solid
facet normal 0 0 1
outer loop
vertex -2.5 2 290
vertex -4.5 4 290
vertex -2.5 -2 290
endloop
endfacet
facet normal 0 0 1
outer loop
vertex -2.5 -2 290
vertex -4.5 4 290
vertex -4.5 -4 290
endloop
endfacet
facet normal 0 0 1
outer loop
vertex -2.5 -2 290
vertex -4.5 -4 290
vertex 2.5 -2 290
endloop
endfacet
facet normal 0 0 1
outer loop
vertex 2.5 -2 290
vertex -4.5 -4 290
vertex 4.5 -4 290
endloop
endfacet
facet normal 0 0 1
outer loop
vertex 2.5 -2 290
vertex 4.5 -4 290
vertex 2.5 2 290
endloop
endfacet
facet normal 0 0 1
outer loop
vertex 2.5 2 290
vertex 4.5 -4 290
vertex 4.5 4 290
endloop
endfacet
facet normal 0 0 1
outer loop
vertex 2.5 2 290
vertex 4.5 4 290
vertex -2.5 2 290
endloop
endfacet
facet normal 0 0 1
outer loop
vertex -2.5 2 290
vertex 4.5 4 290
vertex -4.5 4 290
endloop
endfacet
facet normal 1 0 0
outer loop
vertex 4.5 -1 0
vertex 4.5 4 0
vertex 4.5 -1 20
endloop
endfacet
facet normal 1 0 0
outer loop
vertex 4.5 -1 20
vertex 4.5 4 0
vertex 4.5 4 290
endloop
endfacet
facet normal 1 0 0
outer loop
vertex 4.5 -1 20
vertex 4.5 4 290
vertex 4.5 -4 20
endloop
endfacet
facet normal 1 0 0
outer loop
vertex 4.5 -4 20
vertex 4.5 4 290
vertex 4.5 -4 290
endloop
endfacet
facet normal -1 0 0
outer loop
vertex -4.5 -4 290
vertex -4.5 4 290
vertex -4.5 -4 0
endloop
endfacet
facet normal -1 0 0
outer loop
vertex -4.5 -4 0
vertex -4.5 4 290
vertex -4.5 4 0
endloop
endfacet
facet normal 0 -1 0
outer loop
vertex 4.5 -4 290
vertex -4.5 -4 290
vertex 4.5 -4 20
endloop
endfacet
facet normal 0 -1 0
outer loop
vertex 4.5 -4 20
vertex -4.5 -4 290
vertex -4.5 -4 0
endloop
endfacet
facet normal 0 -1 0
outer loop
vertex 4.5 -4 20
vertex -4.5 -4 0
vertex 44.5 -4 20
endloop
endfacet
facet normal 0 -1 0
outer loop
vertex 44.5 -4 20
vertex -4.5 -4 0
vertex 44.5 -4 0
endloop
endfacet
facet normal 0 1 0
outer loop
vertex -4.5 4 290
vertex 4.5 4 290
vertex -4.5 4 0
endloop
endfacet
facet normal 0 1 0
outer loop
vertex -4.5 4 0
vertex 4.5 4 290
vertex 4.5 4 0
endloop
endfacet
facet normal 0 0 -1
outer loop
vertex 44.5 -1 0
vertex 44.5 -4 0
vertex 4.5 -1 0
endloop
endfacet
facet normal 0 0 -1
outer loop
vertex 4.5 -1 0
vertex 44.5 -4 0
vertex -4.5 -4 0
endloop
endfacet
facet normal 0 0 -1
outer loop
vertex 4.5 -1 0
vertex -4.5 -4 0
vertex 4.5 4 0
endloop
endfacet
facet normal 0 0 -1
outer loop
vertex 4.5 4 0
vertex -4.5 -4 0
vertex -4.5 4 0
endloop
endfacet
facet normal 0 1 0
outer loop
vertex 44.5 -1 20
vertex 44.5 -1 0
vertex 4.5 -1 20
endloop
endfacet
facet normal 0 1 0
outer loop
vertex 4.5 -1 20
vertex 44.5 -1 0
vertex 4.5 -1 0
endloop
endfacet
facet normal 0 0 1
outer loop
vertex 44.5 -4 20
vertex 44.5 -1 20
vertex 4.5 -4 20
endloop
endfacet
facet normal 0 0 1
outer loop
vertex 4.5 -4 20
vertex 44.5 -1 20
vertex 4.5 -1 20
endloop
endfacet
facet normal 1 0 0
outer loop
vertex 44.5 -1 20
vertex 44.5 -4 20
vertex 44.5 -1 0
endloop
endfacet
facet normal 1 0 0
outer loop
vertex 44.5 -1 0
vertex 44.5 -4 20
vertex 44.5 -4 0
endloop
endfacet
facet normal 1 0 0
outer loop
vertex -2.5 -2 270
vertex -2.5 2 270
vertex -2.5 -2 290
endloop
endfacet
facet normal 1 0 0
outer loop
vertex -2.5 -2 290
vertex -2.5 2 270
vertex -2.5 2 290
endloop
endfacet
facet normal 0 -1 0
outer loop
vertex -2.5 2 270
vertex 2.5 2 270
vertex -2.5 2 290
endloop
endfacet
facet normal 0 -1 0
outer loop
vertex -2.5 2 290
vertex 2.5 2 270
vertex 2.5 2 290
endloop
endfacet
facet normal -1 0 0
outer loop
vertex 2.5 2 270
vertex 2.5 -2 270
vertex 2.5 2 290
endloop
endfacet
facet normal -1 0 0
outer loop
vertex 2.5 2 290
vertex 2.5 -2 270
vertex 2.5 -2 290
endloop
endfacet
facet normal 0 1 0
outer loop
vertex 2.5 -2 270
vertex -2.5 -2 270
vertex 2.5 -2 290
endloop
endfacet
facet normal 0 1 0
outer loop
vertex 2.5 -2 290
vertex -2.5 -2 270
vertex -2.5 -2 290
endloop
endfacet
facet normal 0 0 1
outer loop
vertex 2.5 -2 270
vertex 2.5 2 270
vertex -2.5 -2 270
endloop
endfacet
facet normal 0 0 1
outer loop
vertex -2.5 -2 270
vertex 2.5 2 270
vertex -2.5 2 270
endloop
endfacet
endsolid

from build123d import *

# Parameters (mm, degrees)
SKETCH1_W           = 9
SKETCH1_H           = 8
BOSS_EXTRUDE1_DEPTH = 290
SKETCH2_W           = 20
SKETCH2_H           = 3
BOSS_EXTRUDE2_DEPTH = 40
SKETCH3_W           = 5
SKETCH3_H           = 4
CUT_EXTRUDE1_DEPTH  = 20


with BuildPart() as part:
    # Sketch1 → Boss-Extrude1 (new body)
    with BuildSketch(Plane.XY):
        Rectangle(SKETCH1_W, SKETCH1_H)
    extrude(amount=BOSS_EXTRUDE1_DEPTH)

    # Sketch2 → Boss-Extrude2 (add)
    with BuildSketch(Plane(origin=(4.5, 0, 0), x_dir=(0, 0, -1), z_dir=(1, 0, 0))):
        with Locations((-10, -2.5)):
            Rectangle(SKETCH2_W, SKETCH2_H)
    extrude(amount=BOSS_EXTRUDE2_DEPTH)

    # Sketch3 → Cut-Extrude1 (cut)
    with BuildSketch(Plane.XY.offset(290)):
        Rectangle(SKETCH3_W, SKETCH3_H)
    extrude(amount=-CUT_EXTRUDE1_DEPTH, mode=Mode.SUBTRACT)


solid = part.part
